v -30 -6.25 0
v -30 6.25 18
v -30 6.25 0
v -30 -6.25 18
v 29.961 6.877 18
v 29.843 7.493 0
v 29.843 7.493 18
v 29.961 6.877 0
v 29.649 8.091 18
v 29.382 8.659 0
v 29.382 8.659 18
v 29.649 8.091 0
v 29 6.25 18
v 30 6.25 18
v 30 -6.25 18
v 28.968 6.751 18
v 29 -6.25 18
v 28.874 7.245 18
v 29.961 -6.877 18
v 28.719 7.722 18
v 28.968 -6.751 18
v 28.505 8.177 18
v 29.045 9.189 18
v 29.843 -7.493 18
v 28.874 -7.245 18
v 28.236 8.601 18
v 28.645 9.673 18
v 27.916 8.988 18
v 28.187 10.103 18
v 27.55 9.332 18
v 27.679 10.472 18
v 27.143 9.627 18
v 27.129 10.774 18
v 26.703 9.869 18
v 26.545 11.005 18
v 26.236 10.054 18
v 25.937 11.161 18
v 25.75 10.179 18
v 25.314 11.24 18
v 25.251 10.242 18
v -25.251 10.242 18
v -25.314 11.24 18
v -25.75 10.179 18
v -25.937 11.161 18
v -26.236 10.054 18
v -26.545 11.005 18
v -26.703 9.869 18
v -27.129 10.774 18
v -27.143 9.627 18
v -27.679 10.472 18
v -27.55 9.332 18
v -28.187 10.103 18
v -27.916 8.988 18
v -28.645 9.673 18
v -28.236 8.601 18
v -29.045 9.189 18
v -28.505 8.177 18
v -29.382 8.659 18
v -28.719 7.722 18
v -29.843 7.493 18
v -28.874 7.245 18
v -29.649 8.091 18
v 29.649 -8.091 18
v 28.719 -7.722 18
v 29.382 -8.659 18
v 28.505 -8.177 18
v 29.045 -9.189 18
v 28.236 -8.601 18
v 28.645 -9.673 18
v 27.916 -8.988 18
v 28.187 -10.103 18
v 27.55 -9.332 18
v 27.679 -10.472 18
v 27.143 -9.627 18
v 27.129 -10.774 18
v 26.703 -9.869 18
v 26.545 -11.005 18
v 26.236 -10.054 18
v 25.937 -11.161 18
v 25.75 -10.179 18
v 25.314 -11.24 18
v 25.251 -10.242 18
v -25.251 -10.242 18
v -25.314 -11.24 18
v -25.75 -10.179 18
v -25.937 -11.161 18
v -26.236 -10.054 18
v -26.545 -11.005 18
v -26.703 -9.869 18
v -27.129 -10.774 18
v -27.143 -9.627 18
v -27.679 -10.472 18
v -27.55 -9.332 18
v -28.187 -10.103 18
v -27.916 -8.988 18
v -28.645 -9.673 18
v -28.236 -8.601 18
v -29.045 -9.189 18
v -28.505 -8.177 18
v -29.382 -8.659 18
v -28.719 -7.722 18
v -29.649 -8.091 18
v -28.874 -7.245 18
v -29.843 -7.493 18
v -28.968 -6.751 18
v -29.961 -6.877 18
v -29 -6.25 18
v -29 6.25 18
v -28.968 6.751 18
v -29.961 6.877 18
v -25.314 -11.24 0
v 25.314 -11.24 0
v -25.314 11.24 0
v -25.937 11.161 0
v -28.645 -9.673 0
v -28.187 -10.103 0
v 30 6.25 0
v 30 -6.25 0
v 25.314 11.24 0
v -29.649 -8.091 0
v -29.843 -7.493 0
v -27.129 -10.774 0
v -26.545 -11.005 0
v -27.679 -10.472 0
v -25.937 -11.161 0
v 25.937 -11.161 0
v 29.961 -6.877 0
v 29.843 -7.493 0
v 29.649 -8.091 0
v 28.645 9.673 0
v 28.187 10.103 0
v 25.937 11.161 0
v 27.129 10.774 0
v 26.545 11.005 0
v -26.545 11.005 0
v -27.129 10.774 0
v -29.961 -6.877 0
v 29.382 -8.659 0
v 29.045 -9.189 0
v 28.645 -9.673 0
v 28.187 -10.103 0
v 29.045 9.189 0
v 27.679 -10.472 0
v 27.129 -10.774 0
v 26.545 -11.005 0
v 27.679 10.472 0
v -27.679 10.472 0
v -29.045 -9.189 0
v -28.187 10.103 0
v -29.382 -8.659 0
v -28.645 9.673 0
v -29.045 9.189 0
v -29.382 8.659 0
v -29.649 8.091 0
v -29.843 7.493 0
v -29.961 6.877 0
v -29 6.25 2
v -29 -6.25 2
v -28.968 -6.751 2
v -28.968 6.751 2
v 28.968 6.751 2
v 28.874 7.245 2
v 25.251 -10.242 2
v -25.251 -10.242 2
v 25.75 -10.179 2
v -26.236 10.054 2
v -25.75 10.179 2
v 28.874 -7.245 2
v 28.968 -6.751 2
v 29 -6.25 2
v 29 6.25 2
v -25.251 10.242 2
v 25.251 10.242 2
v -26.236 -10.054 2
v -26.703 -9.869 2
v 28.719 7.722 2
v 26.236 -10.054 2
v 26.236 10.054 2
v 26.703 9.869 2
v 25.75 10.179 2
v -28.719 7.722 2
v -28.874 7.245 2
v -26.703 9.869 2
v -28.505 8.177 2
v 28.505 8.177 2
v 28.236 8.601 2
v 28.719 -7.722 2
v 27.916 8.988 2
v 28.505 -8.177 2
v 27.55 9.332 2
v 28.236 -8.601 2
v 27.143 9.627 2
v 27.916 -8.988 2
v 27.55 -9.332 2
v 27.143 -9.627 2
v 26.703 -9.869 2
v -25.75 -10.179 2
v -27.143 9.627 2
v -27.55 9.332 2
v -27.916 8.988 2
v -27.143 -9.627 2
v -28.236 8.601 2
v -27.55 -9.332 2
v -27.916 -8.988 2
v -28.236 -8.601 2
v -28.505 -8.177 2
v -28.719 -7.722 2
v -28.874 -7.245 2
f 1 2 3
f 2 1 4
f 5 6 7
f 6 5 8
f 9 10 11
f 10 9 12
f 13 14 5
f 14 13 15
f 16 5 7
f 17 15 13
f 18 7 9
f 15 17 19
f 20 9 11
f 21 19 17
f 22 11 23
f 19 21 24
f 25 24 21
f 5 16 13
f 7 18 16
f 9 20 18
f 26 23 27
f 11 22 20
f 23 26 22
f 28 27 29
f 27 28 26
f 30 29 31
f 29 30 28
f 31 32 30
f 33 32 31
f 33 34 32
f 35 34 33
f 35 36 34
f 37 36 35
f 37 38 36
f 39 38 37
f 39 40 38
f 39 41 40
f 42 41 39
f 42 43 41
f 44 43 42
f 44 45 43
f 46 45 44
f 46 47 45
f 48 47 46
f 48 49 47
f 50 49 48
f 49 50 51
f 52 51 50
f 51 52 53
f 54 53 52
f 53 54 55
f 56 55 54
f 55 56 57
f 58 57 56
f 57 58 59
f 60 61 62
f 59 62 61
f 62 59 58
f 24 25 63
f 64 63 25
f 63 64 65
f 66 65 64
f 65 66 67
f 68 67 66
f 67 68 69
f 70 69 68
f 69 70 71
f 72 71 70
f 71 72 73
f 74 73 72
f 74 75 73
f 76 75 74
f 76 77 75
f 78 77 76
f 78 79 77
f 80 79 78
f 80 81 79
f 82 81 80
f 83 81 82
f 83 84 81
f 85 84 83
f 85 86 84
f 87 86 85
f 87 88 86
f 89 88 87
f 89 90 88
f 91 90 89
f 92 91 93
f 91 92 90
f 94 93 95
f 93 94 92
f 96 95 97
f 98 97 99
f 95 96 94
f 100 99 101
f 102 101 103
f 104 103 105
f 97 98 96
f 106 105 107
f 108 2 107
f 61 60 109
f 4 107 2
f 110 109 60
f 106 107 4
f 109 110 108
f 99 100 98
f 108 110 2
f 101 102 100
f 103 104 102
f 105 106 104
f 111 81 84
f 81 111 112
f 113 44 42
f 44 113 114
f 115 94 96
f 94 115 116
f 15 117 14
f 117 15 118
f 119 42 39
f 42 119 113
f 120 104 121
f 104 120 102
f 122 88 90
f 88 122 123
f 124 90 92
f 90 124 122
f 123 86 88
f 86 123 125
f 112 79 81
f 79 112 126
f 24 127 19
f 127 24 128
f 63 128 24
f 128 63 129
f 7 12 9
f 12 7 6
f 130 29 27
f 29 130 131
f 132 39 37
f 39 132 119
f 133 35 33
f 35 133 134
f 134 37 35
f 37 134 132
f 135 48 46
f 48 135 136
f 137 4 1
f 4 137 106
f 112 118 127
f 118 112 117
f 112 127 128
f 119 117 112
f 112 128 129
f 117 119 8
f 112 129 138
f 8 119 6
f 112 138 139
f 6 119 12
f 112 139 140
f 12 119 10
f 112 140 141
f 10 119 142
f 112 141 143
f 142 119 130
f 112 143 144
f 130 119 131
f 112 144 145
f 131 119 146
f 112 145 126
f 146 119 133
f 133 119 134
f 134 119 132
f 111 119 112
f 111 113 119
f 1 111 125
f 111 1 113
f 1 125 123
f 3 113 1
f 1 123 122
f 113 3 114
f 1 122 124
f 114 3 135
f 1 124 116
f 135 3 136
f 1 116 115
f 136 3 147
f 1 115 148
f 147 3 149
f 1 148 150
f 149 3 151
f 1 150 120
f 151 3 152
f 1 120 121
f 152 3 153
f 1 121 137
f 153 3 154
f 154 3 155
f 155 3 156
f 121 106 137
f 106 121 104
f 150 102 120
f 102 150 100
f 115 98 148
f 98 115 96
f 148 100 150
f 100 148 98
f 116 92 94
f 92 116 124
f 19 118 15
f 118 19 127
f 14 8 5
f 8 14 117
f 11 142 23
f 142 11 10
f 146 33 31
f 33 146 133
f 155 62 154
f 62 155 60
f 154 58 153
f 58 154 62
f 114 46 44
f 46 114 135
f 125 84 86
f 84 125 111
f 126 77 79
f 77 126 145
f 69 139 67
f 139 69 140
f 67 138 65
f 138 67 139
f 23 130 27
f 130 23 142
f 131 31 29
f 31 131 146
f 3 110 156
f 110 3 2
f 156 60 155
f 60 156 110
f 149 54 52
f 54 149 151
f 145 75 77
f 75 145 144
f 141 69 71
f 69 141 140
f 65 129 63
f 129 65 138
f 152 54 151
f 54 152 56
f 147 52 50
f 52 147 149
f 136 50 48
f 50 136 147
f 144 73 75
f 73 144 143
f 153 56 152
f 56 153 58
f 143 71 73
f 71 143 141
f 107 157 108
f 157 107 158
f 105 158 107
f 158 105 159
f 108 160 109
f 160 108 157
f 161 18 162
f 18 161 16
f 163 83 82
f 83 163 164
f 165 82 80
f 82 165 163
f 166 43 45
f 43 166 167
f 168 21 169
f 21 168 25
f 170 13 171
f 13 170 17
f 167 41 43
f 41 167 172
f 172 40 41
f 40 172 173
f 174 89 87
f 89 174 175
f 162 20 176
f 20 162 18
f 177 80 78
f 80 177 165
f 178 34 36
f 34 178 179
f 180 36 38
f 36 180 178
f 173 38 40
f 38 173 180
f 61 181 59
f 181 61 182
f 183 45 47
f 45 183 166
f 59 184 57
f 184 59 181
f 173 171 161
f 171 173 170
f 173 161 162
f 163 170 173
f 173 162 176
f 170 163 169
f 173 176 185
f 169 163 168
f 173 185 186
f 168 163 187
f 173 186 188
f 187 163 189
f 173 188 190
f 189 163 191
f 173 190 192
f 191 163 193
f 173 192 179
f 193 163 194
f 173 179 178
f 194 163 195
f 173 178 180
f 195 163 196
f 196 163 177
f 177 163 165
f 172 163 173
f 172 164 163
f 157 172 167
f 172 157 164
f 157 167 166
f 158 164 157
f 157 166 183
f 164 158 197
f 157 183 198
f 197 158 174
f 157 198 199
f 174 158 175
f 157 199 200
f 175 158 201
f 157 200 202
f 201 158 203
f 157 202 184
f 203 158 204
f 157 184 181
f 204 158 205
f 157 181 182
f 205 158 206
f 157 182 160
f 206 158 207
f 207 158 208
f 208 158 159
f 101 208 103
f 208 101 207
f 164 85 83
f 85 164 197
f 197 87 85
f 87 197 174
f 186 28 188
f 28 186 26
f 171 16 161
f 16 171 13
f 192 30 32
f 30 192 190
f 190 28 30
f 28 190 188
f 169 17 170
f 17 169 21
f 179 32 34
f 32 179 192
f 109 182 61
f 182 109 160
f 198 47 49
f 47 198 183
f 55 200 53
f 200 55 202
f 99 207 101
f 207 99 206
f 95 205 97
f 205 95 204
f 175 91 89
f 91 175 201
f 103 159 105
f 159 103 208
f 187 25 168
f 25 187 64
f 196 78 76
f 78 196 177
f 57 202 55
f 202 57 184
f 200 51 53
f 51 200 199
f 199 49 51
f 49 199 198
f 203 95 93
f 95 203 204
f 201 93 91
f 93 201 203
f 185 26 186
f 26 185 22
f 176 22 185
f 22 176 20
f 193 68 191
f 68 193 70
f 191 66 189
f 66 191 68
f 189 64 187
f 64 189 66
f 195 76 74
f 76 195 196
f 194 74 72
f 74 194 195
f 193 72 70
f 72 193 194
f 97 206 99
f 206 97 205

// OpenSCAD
$fn = 50;


difference() {
	union() {
		hull() {
			translate(v = [-25.0000000000, 6.2500000000, 0]) {
				cylinder(h = 18, r = 5);
			}
			translate(v = [25.0000000000, 6.2500000000, 0]) {
				cylinder(h = 18, r = 5);
			}
			translate(v = [-25.0000000000, -6.2500000000, 0]) {
				cylinder(h = 18, r = 5);
			}
			translate(v = [25.0000000000, -6.2500000000, 0]) {
				cylinder(h = 18, r = 5);
			}
		}
	}
	union() {
		translate(v = [0, 0, 2]) {
			hull() {
				translate(v = [-25.0000000000, 6.2500000000, 0]) {
					cylinder(h = 16, r = 4);
				}
				translate(v = [25.0000000000, 6.2500000000, 0]) {
					cylinder(h = 16, r = 4);
				}
				translate(v = [-25.0000000000, -6.2500000000, 0]) {
					cylinder(h = 16, r = 4);
				}
				translate(v = [25.0000000000, -6.2500000000, 0]) {
					cylinder(h = 16, r = 4);
				}
			}
		}
	}
}
